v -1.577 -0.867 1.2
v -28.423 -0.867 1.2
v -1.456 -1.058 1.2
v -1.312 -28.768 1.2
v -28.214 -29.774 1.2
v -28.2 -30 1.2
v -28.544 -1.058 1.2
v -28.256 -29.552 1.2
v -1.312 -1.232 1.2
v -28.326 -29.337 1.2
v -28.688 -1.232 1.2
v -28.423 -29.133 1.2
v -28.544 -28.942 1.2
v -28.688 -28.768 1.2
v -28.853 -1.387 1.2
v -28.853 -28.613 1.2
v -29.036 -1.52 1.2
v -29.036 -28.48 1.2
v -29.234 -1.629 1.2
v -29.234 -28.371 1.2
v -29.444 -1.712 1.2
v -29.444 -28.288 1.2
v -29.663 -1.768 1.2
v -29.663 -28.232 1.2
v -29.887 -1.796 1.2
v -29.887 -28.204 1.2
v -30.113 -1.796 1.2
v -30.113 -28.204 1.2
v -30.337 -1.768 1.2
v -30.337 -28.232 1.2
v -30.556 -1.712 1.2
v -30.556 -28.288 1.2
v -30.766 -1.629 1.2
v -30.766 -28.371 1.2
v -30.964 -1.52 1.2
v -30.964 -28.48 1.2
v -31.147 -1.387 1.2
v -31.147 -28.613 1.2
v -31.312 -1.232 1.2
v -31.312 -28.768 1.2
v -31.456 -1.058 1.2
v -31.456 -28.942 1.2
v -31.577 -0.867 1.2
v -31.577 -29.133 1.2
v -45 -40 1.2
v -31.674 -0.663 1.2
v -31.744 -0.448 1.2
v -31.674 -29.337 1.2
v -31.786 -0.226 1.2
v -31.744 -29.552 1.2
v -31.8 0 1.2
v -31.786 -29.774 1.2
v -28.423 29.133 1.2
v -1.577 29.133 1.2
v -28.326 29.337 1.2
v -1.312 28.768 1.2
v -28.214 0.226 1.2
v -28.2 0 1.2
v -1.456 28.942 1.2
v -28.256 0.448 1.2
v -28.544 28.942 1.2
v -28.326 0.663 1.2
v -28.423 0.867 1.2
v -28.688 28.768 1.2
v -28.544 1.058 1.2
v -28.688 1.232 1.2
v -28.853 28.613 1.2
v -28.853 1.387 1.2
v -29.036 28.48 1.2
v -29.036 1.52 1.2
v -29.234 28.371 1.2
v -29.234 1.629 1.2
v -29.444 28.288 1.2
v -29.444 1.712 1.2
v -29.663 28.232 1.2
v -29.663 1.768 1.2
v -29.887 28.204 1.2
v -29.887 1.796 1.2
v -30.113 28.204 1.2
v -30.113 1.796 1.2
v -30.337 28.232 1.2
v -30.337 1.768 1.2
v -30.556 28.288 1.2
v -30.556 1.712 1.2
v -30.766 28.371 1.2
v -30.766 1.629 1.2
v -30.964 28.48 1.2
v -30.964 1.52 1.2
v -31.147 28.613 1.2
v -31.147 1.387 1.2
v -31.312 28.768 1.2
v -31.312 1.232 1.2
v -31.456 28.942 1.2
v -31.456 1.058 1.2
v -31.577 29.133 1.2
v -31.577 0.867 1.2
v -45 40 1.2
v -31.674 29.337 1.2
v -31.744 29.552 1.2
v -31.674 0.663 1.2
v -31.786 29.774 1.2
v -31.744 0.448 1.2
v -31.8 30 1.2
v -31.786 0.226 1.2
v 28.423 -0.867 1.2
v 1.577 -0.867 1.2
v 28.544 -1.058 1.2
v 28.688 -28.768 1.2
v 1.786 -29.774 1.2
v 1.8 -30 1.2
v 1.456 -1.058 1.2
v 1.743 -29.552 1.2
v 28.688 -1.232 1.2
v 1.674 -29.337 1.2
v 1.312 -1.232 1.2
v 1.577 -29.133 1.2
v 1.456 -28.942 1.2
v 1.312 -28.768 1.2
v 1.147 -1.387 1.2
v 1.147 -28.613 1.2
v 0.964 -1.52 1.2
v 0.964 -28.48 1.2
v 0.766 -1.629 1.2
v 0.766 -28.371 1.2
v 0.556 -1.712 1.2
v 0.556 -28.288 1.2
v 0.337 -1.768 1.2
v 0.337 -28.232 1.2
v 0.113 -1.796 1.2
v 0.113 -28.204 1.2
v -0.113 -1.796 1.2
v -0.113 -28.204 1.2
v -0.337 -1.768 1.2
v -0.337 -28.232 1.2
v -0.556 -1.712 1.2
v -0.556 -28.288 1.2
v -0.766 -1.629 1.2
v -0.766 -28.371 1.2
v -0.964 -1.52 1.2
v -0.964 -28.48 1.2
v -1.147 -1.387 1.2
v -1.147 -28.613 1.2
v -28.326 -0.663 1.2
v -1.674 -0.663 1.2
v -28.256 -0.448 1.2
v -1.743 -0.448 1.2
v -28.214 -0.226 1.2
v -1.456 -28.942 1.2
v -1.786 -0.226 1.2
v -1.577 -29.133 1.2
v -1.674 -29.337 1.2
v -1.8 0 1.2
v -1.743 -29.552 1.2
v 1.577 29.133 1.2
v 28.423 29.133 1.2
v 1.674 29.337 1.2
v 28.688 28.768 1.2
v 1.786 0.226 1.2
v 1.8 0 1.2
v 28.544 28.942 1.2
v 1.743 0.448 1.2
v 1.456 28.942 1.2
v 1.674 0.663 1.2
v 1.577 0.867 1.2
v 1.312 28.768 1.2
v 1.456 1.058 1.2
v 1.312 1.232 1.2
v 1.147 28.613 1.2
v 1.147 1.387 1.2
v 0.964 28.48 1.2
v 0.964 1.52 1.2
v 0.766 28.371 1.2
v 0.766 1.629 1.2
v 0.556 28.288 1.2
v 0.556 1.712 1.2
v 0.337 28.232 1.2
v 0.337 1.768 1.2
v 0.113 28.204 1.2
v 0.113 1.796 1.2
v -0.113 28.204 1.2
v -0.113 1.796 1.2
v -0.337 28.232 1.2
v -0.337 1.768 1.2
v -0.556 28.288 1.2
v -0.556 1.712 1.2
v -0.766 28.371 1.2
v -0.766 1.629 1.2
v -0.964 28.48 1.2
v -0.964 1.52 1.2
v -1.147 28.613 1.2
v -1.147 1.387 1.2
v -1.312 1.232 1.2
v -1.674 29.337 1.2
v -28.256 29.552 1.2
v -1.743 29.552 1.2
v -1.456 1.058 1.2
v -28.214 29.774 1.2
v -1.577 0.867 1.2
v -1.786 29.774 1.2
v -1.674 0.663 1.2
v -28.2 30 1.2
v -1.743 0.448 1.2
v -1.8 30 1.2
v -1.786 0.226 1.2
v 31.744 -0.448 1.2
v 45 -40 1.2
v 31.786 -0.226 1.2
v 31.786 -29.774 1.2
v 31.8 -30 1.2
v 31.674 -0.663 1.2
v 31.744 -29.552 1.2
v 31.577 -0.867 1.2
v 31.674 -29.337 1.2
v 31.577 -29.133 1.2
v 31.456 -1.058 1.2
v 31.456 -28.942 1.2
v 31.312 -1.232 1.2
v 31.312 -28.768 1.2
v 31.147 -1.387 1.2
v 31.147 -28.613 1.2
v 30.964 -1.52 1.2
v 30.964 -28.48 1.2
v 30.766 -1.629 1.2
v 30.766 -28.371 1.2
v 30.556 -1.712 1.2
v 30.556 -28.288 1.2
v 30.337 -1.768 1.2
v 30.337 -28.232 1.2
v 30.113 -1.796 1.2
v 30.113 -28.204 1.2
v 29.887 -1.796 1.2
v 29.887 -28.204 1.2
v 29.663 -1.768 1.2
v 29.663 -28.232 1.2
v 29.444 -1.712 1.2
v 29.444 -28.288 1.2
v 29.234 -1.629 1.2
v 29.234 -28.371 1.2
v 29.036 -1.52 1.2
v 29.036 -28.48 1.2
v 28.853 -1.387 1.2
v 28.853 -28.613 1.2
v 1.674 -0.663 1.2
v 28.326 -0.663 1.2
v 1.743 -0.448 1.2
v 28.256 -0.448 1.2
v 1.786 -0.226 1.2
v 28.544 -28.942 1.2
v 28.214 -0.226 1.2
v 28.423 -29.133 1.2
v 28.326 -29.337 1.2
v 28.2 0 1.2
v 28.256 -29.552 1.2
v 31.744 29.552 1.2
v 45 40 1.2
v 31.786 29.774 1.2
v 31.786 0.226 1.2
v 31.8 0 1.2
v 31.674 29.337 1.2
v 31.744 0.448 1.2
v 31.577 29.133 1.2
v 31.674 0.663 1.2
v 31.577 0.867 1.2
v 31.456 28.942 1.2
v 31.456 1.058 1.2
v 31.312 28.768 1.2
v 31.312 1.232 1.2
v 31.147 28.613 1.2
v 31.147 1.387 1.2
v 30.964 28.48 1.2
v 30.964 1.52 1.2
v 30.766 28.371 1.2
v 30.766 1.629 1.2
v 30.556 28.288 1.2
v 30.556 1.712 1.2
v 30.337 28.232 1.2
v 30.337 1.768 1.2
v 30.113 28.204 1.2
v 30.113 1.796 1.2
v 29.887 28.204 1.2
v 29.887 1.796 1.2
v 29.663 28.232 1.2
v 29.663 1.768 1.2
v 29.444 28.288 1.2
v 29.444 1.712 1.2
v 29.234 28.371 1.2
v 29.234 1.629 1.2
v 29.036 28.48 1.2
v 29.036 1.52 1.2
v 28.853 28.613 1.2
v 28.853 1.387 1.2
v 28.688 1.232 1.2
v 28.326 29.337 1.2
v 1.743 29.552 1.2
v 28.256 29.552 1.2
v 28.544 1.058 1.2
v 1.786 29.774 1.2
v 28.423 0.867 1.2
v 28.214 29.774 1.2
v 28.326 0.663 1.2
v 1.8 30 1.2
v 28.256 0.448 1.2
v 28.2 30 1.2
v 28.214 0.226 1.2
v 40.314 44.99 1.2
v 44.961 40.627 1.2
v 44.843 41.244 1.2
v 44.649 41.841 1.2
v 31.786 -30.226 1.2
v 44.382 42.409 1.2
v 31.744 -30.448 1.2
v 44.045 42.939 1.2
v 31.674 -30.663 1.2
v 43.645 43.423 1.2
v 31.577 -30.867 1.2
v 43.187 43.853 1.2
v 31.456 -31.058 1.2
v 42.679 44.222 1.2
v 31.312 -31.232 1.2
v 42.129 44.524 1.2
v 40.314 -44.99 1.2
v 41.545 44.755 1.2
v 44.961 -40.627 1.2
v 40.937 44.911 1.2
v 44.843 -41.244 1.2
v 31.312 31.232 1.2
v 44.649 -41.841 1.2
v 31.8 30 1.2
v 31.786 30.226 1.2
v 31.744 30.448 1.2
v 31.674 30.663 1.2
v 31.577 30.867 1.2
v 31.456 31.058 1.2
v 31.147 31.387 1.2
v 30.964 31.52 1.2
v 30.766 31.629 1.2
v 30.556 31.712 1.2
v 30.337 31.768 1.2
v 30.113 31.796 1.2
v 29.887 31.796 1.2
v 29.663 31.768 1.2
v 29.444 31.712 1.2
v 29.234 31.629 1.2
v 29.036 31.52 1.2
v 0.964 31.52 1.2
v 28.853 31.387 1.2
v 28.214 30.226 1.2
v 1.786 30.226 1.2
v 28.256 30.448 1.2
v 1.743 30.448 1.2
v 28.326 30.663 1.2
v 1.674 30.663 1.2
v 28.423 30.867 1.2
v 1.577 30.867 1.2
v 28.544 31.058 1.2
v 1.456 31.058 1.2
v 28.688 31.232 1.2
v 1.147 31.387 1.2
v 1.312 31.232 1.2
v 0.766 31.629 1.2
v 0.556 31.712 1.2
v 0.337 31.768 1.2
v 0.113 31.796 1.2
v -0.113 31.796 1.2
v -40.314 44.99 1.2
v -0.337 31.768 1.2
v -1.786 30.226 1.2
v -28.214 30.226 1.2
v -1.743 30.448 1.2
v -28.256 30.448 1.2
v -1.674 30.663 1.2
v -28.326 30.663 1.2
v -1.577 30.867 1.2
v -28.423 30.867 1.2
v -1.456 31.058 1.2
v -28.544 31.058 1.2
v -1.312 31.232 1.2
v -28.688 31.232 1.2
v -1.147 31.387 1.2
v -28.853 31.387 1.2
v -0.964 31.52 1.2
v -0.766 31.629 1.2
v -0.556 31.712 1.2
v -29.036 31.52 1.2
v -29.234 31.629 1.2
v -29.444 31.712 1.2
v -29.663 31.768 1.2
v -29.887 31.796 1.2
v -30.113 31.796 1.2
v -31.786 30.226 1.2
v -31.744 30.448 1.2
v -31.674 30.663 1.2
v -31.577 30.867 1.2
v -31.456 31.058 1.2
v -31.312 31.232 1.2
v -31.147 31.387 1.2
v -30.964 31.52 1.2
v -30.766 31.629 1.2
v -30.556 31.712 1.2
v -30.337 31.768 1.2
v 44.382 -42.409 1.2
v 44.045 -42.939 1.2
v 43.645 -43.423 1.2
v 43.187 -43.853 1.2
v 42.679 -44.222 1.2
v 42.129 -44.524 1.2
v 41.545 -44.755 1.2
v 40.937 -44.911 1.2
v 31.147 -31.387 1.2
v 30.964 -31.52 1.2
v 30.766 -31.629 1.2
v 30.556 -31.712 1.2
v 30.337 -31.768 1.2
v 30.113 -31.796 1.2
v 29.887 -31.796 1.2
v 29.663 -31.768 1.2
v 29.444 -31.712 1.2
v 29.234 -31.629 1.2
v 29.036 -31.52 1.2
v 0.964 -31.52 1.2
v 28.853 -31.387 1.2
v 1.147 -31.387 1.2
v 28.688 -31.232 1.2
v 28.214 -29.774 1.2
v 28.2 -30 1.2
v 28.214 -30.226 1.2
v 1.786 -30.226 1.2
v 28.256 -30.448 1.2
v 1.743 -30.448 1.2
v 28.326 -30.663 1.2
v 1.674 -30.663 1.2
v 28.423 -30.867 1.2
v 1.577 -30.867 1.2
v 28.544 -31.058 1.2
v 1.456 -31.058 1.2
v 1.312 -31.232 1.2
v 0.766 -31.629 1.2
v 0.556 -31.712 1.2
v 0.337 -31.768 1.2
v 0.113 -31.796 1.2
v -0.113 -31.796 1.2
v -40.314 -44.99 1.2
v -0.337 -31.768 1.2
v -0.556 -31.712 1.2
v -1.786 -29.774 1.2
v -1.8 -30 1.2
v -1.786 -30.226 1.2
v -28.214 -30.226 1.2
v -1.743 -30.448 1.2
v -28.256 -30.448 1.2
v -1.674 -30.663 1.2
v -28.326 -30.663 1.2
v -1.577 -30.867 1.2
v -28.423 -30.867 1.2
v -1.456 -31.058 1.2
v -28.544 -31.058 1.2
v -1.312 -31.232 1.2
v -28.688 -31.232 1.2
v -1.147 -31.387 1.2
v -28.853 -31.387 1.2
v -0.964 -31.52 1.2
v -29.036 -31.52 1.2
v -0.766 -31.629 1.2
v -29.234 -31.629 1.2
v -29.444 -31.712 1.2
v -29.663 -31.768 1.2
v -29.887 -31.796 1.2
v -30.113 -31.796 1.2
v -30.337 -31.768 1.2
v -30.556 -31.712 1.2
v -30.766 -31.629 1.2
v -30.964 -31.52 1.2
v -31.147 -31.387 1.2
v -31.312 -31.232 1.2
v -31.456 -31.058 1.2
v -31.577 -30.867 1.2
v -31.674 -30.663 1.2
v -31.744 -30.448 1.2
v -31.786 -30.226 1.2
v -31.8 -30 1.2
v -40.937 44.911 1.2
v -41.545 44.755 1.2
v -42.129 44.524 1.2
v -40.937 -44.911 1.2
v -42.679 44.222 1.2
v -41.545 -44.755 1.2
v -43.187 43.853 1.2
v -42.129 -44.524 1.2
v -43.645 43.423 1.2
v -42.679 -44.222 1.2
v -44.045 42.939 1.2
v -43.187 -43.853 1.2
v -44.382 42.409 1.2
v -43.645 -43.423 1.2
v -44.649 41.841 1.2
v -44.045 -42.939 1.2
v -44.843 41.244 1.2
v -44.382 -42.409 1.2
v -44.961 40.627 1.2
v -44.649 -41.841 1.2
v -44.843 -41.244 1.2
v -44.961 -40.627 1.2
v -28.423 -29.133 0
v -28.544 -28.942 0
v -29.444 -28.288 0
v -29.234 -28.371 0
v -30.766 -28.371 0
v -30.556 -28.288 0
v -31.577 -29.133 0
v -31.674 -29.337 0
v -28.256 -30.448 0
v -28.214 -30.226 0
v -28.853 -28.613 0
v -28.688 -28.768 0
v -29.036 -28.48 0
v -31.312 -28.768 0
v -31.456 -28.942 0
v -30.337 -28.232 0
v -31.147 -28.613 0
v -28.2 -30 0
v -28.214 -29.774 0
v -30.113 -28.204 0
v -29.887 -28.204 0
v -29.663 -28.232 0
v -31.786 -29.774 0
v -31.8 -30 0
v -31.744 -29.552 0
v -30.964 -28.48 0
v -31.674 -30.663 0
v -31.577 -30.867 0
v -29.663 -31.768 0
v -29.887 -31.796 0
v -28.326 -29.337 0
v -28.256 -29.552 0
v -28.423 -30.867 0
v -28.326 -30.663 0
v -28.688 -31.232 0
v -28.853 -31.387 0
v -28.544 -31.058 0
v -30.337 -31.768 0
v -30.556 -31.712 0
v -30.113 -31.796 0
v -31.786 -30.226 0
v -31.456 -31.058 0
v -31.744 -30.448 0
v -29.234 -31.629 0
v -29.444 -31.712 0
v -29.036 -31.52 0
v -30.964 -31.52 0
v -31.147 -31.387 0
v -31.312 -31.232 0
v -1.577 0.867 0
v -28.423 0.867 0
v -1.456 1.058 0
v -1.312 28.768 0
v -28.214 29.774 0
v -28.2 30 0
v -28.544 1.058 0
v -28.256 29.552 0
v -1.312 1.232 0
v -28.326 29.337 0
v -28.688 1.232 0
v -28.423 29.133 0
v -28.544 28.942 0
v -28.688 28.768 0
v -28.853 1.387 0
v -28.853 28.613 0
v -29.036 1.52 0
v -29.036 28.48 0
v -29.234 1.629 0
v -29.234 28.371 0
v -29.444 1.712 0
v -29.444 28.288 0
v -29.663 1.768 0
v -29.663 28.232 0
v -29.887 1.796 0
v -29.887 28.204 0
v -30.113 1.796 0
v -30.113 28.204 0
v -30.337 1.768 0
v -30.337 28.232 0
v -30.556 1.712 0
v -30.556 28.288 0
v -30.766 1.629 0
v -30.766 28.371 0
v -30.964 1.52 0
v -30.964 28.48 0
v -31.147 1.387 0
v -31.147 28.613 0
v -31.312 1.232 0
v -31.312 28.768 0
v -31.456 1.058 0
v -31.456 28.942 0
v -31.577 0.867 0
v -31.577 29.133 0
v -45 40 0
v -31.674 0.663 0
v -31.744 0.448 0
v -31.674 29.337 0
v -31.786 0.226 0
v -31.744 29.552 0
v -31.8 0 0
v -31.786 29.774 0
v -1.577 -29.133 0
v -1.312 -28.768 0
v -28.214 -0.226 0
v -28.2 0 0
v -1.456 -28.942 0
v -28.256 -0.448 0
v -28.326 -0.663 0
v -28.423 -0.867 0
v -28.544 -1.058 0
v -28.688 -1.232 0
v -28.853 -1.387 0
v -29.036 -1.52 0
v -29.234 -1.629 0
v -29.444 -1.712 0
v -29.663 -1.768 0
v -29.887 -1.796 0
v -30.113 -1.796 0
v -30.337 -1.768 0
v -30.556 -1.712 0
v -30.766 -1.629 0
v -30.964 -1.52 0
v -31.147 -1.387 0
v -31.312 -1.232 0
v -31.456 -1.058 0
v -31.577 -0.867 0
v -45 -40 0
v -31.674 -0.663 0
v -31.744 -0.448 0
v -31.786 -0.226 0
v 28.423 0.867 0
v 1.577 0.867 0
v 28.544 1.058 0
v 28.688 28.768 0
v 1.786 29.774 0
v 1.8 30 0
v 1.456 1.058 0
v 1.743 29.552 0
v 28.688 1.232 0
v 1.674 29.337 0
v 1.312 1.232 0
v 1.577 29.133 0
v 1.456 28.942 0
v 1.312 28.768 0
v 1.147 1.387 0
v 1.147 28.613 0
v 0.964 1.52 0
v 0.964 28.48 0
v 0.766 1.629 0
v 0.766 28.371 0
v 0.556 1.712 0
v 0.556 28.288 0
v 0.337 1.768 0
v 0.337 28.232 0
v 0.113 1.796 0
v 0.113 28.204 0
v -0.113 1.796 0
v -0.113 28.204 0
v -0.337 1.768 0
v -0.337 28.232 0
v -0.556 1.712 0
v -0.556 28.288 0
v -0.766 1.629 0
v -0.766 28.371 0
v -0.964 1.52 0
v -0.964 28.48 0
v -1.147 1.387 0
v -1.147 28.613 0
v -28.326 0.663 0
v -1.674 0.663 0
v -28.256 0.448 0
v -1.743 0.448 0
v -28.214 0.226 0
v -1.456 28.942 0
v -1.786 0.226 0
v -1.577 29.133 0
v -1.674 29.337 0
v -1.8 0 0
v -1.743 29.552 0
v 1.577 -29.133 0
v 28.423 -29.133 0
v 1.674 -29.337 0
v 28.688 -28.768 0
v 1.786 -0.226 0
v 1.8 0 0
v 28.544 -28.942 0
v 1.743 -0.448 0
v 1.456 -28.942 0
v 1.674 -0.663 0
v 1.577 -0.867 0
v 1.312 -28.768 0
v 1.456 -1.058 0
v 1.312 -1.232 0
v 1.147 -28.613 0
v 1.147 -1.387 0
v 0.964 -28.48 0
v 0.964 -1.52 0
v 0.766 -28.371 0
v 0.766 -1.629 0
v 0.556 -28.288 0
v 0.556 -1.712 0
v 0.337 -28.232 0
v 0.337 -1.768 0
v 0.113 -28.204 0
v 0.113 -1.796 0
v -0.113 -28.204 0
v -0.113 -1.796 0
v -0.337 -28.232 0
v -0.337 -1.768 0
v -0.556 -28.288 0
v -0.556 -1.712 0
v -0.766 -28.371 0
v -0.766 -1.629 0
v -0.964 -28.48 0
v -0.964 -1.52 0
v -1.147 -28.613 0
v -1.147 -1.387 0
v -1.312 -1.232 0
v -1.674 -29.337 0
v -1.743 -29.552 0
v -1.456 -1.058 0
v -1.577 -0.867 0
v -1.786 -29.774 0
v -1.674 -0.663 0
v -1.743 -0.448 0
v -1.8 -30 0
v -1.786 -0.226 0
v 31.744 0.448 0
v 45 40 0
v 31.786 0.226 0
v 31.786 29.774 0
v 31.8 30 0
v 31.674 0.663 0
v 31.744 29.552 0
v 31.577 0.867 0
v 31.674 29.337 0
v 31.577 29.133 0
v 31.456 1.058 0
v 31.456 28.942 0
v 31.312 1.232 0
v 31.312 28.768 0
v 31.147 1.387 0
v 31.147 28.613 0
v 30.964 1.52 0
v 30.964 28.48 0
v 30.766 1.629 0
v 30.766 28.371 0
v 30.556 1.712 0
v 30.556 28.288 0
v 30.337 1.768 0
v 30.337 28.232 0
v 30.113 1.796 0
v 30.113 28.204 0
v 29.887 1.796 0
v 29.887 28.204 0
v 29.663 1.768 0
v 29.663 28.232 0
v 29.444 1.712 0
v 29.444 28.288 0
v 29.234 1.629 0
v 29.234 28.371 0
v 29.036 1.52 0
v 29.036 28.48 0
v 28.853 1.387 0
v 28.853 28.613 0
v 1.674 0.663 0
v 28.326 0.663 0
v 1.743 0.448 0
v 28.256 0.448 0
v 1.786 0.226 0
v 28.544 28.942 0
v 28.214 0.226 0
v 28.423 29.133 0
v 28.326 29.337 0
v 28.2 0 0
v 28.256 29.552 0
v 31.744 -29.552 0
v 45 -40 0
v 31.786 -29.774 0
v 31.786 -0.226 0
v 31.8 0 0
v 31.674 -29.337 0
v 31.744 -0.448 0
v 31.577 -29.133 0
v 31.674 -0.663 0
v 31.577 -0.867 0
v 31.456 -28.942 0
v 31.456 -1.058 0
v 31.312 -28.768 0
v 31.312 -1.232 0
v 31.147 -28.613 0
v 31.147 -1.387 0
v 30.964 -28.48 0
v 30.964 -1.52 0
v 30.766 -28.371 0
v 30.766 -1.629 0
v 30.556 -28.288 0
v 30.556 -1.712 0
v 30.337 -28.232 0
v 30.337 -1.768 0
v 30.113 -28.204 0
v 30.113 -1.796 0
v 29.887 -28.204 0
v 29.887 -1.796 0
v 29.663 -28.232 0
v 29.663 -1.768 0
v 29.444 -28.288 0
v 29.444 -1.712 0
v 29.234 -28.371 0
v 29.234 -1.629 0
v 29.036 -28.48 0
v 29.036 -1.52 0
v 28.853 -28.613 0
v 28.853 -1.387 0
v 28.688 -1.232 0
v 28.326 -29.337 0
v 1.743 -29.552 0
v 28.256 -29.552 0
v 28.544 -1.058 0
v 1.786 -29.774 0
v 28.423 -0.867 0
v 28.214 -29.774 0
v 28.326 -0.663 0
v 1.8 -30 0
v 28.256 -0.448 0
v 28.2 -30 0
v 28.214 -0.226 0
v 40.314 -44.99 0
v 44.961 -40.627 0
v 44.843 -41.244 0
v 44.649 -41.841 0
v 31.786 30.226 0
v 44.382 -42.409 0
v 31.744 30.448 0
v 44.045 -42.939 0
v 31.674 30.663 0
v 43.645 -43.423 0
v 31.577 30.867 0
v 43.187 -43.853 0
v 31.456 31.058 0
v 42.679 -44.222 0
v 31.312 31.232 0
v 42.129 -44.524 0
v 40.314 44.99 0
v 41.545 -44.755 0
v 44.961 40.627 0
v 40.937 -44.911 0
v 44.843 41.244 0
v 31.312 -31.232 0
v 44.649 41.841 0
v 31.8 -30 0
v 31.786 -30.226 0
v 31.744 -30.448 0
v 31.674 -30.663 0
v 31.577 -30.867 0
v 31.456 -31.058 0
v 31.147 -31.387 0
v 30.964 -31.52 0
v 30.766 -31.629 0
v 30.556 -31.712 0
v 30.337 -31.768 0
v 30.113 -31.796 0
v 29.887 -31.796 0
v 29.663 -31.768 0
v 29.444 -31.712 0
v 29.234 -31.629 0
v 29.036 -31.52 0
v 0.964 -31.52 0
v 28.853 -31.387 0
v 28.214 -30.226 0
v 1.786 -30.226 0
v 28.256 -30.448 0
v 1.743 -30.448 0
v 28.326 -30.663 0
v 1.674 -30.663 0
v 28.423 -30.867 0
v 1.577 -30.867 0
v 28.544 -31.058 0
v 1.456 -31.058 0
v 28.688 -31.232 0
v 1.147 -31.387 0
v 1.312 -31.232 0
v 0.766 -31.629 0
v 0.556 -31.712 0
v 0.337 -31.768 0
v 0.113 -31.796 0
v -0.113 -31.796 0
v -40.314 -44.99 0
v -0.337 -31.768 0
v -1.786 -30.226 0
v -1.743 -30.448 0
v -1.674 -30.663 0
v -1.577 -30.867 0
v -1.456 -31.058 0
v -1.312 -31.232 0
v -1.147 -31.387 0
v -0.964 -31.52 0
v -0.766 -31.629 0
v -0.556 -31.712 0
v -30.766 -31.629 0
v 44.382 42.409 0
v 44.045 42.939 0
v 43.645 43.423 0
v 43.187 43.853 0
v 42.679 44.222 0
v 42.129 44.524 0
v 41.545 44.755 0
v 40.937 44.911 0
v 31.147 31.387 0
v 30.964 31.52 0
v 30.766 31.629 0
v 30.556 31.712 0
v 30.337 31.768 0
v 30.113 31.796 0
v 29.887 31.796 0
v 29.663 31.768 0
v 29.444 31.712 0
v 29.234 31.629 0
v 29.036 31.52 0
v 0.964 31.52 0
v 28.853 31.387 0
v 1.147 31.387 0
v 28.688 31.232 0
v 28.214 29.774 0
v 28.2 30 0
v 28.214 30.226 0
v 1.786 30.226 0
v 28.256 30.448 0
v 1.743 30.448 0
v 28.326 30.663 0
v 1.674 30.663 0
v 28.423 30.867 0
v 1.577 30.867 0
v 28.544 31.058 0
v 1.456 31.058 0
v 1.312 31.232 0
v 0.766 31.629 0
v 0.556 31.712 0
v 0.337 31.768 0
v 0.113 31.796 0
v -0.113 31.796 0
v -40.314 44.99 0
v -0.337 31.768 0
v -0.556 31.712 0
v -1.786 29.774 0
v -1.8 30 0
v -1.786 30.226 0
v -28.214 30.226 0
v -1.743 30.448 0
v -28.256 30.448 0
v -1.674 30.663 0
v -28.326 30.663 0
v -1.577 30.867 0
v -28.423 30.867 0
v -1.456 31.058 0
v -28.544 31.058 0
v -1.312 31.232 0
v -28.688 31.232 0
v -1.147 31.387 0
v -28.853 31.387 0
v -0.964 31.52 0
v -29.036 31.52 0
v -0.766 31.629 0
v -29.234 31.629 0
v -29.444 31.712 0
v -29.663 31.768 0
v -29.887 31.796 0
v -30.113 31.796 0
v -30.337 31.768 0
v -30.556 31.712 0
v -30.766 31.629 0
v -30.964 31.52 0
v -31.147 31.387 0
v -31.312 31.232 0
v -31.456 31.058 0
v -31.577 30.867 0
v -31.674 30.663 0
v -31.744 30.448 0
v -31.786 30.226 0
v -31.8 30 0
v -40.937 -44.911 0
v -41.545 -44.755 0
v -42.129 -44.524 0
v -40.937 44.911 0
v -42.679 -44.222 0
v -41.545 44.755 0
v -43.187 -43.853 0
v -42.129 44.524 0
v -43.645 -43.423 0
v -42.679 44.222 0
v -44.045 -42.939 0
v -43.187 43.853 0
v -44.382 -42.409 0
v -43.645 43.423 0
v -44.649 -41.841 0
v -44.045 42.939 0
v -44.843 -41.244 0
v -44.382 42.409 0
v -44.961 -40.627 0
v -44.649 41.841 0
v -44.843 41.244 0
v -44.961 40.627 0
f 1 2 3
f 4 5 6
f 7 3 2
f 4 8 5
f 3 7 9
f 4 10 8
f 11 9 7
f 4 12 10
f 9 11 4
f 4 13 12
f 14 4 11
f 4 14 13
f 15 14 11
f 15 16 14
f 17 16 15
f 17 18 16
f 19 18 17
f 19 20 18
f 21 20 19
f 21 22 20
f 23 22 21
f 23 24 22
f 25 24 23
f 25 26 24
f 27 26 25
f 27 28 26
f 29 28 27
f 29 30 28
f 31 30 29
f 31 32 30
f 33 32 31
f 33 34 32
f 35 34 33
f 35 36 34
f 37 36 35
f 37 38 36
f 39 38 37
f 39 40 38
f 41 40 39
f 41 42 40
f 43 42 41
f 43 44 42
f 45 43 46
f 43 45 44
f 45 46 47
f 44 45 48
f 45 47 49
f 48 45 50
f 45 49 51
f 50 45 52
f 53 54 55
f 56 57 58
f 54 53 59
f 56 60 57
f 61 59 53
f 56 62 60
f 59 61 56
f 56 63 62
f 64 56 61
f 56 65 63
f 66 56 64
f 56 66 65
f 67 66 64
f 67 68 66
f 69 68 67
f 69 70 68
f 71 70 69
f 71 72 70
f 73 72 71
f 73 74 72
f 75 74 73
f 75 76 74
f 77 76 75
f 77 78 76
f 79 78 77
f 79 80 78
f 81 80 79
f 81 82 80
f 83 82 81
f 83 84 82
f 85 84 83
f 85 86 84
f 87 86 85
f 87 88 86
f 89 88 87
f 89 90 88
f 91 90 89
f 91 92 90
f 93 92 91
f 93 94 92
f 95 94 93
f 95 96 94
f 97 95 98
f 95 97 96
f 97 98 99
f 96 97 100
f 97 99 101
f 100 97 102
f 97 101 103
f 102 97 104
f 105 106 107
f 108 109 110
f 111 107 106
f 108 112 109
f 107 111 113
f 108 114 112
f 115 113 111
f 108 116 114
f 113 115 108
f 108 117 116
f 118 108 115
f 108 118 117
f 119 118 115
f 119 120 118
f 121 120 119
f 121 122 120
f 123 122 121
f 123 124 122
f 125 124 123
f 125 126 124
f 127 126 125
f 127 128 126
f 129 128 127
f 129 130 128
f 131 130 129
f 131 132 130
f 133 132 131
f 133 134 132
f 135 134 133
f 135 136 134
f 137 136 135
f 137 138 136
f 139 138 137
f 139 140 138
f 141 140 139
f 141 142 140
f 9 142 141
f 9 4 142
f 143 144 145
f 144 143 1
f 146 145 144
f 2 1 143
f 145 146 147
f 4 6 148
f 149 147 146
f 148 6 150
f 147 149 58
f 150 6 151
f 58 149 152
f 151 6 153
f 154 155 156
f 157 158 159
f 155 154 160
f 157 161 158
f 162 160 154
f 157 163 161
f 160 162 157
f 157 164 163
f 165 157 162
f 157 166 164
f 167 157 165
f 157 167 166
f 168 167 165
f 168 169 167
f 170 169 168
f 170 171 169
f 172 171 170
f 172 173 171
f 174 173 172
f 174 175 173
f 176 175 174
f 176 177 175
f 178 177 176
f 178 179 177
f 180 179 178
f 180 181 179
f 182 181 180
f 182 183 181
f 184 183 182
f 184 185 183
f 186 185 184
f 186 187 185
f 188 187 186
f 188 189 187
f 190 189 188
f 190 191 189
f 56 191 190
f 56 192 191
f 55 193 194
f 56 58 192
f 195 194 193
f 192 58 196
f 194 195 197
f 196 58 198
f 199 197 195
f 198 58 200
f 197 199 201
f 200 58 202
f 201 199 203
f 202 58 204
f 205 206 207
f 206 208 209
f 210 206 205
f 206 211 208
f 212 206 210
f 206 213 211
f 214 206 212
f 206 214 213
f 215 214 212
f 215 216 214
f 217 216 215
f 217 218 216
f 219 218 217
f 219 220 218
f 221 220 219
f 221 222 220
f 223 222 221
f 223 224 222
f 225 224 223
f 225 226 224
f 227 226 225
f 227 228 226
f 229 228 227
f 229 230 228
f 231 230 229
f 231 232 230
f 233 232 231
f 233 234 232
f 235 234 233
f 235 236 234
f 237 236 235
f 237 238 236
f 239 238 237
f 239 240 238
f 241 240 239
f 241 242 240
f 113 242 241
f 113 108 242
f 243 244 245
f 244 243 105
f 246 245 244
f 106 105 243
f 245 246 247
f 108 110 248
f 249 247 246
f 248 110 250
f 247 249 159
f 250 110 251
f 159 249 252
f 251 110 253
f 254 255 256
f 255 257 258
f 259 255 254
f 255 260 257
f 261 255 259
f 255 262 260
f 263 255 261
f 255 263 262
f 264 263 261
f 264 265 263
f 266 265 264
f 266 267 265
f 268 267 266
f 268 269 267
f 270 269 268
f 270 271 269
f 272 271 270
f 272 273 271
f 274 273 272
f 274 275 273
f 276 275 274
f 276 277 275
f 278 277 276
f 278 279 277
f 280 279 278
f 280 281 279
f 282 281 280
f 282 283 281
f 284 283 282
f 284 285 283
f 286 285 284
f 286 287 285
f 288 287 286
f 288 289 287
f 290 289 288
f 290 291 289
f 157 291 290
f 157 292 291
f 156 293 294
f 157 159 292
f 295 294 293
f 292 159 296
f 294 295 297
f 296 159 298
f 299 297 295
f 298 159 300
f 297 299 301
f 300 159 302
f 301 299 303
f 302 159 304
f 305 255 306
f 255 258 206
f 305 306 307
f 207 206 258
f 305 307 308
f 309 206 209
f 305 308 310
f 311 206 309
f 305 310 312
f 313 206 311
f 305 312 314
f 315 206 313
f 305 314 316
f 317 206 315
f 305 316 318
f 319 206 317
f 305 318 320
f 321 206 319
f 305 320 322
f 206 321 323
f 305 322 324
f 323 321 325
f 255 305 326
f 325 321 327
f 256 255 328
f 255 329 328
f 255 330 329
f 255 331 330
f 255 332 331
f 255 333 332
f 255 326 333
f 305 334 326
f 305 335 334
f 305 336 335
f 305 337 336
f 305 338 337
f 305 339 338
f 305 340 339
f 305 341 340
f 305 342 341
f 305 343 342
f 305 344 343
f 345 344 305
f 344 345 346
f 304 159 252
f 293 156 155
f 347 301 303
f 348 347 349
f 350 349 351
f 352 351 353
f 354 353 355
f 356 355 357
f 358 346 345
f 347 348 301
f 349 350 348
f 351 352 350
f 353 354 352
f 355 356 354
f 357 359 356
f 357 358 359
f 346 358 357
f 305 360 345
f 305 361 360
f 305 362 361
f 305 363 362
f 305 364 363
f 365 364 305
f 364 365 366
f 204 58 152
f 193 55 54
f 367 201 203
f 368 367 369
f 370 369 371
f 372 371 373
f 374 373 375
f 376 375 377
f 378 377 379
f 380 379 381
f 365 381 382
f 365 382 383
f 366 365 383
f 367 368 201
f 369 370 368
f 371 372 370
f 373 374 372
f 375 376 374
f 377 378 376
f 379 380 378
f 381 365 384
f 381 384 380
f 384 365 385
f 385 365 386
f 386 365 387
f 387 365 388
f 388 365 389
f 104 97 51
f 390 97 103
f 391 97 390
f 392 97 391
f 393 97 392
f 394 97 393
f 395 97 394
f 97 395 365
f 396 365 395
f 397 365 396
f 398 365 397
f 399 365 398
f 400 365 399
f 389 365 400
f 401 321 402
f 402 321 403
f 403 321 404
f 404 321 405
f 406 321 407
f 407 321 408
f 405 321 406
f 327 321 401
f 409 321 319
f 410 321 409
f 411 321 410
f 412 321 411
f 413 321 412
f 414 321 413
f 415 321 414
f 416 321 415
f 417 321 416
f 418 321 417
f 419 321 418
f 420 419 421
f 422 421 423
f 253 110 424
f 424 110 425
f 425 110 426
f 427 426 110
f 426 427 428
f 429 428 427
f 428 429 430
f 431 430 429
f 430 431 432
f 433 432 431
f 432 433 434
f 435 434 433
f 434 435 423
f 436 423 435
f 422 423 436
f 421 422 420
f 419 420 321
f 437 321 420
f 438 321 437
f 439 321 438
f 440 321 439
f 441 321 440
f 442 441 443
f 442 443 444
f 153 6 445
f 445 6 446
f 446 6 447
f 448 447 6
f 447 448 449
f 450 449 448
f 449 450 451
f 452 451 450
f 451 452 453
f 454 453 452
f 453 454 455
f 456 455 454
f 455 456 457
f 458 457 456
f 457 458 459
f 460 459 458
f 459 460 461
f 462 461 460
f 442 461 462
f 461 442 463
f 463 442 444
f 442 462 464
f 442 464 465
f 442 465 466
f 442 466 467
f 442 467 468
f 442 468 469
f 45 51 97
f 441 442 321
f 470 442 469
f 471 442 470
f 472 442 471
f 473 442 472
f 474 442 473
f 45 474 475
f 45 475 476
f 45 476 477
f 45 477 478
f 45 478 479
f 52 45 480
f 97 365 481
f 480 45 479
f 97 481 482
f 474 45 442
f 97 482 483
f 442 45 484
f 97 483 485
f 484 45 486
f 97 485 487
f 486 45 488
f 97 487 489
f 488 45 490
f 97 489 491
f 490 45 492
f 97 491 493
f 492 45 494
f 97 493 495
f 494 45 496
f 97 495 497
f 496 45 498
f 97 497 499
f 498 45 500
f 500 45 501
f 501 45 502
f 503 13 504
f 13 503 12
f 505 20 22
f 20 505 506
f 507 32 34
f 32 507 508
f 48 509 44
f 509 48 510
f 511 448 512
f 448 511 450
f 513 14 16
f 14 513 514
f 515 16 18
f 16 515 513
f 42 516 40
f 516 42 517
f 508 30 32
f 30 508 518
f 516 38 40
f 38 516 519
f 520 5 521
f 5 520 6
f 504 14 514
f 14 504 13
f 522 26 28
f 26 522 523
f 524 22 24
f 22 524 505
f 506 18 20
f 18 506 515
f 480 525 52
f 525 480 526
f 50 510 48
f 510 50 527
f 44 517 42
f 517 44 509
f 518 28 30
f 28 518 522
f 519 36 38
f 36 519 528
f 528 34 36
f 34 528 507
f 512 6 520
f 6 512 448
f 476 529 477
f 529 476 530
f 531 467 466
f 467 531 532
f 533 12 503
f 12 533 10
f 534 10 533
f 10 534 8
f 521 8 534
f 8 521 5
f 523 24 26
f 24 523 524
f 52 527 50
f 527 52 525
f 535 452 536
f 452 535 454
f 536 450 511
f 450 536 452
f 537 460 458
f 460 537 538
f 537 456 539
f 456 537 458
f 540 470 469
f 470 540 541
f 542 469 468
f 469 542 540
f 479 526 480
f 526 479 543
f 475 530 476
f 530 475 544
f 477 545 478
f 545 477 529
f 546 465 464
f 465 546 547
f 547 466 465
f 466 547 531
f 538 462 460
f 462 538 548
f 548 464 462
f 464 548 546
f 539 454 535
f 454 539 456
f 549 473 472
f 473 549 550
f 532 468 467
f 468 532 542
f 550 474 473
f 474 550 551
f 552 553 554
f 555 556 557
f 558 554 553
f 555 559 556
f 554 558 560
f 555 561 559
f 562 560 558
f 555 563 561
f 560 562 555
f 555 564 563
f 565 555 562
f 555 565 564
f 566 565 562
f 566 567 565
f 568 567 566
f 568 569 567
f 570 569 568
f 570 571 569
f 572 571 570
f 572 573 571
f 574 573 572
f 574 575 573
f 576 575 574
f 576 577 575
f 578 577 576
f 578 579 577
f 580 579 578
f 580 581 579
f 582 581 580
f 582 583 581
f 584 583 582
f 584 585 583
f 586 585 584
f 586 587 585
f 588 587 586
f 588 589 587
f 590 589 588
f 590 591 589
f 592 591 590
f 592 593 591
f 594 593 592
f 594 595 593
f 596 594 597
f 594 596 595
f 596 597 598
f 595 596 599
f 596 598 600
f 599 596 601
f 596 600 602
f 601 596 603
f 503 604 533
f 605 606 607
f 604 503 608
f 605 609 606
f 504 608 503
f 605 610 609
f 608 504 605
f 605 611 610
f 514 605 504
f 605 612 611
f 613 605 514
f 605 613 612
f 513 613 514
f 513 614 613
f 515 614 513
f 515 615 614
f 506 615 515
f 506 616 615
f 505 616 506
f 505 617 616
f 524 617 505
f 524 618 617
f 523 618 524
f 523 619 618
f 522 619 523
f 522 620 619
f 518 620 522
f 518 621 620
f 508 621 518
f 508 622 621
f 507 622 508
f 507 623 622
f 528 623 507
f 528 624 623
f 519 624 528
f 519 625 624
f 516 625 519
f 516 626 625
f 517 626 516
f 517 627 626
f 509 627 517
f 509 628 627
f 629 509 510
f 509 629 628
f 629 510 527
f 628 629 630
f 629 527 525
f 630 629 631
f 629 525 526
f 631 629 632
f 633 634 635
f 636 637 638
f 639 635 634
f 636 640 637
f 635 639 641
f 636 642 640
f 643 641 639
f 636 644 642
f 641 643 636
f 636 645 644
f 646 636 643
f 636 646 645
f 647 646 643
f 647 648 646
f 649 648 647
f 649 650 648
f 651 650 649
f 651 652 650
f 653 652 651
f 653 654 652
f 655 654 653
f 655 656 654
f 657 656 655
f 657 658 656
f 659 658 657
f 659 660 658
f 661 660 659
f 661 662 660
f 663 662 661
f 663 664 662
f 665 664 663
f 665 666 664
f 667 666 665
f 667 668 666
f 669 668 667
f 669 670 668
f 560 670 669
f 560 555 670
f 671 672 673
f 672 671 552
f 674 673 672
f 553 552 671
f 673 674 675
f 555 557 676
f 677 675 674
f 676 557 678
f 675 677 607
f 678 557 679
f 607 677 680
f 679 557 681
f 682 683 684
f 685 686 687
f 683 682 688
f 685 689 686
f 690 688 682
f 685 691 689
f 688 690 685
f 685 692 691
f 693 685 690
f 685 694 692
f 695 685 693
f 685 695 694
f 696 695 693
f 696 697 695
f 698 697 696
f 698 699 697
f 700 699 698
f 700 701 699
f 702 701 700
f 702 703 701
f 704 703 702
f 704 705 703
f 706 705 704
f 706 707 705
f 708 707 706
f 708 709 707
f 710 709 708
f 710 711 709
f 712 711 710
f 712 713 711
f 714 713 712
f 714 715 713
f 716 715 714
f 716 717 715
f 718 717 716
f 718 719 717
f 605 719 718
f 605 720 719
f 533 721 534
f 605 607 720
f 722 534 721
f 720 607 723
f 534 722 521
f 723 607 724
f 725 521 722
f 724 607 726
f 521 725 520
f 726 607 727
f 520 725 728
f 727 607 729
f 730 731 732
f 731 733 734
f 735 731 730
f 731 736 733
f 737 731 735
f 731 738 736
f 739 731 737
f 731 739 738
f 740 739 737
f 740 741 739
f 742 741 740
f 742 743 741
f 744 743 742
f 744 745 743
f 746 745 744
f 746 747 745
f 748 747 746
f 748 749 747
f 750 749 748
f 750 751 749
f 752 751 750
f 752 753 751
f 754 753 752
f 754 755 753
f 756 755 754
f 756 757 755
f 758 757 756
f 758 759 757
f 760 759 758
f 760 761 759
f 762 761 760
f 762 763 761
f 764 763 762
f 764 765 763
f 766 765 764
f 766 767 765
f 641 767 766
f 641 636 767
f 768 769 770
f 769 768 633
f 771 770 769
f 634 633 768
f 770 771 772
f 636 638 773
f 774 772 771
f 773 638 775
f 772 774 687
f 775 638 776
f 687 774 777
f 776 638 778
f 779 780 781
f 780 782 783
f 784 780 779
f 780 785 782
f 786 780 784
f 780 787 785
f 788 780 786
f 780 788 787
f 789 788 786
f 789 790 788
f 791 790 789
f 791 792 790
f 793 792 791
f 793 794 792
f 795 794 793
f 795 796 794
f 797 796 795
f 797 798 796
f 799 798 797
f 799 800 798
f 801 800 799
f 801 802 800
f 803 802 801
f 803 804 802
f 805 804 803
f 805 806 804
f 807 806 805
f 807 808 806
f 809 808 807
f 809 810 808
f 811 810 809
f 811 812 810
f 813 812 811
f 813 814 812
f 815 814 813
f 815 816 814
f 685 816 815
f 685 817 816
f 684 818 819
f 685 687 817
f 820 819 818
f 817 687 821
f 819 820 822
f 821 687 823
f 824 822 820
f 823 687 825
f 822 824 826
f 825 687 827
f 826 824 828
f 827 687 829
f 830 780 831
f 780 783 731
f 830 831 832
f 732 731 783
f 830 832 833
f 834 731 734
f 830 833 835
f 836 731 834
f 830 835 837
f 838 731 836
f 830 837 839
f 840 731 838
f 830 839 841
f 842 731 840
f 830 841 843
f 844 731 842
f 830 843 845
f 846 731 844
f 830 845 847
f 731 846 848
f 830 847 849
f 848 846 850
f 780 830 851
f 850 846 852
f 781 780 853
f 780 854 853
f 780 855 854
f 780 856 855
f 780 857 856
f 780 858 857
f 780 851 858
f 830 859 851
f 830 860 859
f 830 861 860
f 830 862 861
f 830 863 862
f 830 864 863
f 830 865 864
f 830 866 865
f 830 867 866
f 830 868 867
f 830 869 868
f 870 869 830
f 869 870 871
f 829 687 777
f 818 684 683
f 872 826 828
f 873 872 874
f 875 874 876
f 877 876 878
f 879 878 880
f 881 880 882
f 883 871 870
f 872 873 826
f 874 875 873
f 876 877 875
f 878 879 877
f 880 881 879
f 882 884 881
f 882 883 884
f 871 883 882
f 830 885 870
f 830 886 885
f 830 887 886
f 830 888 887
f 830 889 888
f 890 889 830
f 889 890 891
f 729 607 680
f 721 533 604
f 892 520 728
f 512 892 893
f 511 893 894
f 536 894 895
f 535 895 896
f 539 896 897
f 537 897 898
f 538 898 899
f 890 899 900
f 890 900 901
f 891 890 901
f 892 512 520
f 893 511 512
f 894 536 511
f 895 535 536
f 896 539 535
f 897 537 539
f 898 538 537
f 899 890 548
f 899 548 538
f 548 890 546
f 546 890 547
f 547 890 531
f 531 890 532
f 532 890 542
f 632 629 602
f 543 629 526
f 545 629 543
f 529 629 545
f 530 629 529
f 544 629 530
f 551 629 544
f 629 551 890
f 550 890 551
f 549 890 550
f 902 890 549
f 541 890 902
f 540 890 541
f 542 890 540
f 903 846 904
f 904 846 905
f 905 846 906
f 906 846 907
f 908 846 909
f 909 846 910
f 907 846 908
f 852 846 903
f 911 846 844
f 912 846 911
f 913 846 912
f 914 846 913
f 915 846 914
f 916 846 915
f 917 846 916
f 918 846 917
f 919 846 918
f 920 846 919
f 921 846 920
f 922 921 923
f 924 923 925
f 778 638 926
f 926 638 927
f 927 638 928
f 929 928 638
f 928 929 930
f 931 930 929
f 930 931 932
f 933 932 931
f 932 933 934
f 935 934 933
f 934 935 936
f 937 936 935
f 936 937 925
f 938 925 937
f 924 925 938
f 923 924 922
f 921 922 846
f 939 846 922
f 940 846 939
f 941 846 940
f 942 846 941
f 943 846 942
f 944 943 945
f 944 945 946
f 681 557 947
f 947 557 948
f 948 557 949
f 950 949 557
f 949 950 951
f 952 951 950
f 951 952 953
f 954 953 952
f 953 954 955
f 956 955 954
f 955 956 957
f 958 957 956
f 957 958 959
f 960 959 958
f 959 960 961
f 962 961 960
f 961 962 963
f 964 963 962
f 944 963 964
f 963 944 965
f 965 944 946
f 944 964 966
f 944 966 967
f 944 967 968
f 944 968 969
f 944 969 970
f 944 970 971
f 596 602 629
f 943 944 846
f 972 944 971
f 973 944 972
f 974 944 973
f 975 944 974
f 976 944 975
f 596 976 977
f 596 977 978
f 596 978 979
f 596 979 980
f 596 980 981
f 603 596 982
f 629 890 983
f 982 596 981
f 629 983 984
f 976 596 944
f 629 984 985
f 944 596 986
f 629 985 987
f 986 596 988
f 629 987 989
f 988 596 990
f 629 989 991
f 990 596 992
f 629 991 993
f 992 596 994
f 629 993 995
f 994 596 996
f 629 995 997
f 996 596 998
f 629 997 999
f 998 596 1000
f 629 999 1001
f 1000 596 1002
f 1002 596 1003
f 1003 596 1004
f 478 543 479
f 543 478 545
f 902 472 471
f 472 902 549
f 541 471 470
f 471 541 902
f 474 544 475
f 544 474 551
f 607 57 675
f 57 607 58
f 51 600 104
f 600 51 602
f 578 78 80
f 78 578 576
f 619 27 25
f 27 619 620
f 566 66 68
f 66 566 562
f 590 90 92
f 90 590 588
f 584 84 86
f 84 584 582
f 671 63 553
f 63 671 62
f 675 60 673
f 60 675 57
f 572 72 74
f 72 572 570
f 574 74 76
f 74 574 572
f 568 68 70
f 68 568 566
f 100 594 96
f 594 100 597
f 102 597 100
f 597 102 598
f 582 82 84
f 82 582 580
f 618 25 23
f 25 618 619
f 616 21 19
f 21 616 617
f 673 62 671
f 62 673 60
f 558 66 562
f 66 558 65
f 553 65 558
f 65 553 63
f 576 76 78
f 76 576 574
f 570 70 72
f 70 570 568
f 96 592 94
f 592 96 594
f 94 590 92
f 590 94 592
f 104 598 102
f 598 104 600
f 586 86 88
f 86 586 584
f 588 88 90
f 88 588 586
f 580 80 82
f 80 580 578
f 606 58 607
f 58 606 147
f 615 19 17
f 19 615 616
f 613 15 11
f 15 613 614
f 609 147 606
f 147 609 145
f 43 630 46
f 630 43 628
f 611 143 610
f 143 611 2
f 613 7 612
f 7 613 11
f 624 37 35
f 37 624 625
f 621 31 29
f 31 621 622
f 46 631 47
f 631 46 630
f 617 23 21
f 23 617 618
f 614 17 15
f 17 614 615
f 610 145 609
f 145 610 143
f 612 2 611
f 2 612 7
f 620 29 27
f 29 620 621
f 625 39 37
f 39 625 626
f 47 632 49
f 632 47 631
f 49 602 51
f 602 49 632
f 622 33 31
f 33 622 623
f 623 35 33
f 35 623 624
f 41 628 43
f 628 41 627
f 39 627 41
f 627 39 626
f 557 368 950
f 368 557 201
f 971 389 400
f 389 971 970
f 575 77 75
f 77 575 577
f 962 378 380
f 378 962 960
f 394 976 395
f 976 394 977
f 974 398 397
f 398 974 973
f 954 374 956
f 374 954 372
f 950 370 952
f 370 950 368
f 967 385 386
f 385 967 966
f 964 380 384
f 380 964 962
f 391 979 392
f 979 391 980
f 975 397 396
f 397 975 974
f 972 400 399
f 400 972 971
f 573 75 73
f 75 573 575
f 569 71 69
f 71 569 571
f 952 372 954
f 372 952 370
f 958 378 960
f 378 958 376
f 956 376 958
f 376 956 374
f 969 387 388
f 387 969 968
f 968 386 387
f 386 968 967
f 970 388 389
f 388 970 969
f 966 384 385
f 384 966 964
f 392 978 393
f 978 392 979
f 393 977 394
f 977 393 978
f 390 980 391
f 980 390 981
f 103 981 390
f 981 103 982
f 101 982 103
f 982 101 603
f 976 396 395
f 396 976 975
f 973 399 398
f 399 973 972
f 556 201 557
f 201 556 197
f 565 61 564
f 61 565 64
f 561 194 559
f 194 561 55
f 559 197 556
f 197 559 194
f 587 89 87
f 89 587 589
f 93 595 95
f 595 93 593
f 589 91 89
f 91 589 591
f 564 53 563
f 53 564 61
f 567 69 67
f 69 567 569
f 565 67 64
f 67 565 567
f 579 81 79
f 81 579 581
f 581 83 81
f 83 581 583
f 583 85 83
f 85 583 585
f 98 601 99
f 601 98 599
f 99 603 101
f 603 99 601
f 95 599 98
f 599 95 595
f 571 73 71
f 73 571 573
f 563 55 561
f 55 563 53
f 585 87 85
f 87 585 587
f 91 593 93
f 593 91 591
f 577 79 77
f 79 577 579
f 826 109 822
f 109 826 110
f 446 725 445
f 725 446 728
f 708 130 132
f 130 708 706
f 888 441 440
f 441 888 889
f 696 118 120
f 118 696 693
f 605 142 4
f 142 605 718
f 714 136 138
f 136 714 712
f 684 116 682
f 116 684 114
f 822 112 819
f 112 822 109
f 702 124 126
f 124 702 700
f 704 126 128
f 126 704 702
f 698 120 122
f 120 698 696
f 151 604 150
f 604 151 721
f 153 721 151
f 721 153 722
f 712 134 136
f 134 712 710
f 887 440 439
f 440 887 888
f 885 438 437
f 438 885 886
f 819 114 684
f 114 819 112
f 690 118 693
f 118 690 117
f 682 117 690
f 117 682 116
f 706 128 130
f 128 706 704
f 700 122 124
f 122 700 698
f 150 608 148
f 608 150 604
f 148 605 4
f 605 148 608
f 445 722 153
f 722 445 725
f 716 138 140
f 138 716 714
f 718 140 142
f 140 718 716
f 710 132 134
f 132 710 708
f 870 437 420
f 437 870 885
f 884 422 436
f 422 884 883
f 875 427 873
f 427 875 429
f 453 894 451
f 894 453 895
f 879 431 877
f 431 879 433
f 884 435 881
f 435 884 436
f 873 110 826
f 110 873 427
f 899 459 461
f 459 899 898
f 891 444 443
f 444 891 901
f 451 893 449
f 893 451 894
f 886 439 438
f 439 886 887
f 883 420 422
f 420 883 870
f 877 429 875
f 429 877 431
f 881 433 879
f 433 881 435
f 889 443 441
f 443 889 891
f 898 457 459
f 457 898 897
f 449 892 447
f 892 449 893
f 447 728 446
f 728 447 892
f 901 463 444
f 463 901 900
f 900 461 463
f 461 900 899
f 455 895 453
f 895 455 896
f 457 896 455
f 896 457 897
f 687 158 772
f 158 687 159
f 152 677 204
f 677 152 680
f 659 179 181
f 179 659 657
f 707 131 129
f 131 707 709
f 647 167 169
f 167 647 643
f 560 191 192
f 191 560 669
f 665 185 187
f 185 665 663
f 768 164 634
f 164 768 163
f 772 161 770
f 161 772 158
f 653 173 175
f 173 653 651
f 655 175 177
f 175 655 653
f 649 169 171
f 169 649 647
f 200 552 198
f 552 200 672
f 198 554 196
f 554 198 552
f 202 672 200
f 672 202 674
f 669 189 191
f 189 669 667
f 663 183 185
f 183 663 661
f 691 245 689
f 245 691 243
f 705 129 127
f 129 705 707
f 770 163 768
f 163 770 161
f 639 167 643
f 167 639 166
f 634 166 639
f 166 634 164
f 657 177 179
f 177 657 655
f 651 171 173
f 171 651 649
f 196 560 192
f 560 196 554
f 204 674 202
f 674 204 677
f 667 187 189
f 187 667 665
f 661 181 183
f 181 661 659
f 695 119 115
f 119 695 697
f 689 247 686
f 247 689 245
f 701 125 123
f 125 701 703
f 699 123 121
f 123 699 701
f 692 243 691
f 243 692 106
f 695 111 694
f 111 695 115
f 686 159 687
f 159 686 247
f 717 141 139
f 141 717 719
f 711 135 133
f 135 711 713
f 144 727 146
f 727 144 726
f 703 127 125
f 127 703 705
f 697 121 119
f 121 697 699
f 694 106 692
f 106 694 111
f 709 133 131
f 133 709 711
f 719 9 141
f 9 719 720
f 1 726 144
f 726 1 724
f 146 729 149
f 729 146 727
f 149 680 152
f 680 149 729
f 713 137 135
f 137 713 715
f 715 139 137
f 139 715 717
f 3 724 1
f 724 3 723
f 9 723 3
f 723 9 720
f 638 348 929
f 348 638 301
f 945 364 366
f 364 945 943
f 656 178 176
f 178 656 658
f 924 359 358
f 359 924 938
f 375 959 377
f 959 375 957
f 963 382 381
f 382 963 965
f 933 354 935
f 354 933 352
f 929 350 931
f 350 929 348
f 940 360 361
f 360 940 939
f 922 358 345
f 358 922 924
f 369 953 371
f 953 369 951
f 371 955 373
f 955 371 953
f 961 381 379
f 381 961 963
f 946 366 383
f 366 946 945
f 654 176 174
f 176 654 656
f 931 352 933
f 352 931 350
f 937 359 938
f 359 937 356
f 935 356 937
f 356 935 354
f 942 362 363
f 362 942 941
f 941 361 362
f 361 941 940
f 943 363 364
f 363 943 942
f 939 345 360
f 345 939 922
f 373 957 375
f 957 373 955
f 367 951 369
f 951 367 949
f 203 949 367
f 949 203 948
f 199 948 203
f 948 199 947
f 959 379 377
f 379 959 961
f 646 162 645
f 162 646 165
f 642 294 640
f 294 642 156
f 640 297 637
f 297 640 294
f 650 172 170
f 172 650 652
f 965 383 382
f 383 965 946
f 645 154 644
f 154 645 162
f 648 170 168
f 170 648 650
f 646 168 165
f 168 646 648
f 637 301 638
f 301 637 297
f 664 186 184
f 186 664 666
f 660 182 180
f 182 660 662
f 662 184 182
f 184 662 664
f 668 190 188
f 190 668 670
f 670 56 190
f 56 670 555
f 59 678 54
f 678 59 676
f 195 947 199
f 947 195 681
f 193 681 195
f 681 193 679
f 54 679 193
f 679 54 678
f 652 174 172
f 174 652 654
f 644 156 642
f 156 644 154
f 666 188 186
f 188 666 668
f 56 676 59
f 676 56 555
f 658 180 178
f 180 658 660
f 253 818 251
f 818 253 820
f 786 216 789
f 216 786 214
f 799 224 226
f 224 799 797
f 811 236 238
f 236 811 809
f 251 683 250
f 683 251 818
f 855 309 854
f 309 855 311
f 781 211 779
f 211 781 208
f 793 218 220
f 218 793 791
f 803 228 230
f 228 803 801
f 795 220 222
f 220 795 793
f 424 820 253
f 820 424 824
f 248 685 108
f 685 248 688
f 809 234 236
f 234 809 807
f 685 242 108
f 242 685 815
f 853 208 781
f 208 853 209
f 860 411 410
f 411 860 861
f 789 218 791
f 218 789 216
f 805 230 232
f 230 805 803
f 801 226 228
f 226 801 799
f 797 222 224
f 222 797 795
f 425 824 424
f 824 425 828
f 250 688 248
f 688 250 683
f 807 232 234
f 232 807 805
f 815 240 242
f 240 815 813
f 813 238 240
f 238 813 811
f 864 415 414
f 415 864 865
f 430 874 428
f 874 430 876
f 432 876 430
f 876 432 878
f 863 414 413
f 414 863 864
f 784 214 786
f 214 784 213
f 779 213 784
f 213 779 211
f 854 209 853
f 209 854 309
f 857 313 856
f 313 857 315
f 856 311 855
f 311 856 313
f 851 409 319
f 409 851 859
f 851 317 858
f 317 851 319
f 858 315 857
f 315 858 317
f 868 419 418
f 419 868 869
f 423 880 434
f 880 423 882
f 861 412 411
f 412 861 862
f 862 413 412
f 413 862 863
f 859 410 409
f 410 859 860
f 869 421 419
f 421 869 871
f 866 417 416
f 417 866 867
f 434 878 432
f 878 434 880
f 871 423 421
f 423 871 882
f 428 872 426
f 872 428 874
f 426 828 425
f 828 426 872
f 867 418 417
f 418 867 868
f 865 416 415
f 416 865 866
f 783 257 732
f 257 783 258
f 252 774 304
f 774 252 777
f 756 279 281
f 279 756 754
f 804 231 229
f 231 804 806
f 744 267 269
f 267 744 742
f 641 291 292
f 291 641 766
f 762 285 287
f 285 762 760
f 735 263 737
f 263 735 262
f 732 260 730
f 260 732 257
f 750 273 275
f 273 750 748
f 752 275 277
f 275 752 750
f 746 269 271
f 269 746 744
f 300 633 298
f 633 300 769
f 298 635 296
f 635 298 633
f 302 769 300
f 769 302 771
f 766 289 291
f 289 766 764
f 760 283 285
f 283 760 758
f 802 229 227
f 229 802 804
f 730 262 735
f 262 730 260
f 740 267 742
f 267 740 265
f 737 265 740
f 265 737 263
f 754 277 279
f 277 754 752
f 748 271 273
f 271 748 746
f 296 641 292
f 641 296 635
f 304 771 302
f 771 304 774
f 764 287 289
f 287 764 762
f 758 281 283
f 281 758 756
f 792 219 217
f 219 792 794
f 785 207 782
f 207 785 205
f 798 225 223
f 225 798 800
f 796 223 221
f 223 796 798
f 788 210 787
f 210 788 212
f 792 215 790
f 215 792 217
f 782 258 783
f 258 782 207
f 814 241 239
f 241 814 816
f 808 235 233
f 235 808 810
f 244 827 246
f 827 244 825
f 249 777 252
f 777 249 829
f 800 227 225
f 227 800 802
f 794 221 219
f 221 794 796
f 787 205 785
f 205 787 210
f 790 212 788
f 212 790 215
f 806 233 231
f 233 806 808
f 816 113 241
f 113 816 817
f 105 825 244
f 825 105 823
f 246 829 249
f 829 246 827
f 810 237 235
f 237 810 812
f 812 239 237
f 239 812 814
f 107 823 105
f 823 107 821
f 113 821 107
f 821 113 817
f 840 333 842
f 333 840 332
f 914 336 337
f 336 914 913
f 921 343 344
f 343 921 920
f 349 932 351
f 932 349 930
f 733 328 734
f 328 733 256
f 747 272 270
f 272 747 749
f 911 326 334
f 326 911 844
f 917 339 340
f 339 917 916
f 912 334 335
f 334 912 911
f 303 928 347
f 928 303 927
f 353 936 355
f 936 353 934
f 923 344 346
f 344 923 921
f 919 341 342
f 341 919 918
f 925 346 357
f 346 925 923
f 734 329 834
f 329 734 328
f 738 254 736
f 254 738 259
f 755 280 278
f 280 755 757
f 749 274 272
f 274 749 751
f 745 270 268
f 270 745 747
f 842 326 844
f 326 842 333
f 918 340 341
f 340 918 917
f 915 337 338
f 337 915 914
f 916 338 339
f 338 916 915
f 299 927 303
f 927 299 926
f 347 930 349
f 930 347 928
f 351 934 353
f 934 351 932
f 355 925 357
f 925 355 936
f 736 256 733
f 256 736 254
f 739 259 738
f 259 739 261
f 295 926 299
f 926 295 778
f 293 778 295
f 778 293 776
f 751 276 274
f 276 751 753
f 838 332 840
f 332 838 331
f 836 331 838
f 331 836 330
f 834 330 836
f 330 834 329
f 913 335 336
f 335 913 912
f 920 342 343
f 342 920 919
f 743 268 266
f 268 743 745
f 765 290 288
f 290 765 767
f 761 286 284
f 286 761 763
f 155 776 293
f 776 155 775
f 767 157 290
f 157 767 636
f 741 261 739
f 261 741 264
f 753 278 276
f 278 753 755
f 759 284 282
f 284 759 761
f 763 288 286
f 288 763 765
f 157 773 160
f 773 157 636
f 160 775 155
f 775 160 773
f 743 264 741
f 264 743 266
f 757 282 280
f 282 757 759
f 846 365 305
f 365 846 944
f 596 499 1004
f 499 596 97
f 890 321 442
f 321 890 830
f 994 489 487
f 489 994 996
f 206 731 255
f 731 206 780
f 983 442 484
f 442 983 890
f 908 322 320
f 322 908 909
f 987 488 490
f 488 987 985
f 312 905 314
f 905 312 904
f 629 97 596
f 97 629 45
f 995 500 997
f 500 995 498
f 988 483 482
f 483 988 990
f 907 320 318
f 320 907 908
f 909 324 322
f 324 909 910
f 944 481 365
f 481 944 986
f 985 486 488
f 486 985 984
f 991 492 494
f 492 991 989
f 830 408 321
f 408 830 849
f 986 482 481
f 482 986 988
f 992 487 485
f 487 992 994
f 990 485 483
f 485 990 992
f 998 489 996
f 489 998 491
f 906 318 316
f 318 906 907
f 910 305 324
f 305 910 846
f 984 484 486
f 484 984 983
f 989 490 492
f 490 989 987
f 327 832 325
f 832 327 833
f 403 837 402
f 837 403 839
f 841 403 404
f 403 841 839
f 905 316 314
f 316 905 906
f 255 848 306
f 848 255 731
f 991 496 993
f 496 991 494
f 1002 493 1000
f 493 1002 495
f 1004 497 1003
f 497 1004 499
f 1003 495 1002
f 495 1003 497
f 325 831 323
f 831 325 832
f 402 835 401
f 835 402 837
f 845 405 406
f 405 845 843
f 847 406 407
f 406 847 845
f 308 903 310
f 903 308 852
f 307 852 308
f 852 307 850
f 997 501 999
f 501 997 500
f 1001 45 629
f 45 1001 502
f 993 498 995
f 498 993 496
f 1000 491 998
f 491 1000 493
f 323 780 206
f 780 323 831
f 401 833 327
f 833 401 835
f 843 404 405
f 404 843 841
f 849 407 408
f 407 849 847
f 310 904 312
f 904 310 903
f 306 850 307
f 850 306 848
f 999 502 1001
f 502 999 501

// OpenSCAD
$fn = 50;


difference() {
	union() {
		hull() {
			translate(v = [-40.0000000000, 40.0000000000, 0]) {
				cylinder(h = 24, r = 5);
			}
			translate(v = [40.0000000000, 40.0000000000, 0]) {
				cylinder(h = 24, r = 5);
			}
			translate(v = [-40.0000000000, -40.0000000000, 0]) {
				cylinder(h = 24, r = 5);
			}
			translate(v = [40.0000000000, -40.0000000000, 0]) {
				cylinder(h = 24, r = 5);
			}
		}
	}
	union() {
		translate(v = [0, 0, 1.2000000000]) {
			hull() {
				translate(v = [-40.0000000000, 40.0000000000, 0]) {
					cylinder(h = 22.8000000000, r = 3.8000000000);
				}
				translate(v = [40.0000000000, 40.0000000000, 0]) {
					cylinder(h = 22.8000000000, r = 3.8000000000);
				}
				translate(v = [-40.0000000000, -40.0000000000, 0]) {
					cylinder(h = 22.8000000000, r = 3.8000000000);
				}
				translate(v = [40.0000000000, -40.0000000000, 0]) {
					cylinder(h = 22.8000000000, r = 3.8000000000);
				}
			}
		}
		#translate(v = [-30.0000000000, -30.0000000000, 0]) {
			cylinder(h = 1.2000000000, r = 1.8000000000);
		}
		#translate(v = [-30.0000000000, 0.0000000000, 0]) {
			cylinder(h = 1.2000000000, r = 1.8000000000);
		}
		#translate(v = [-30.0000000000, 30.0000000000, 0]) {
			cylinder(h = 1.2000000000, r = 1.8000000000);
		}
		#translate(v = [0.0000000000, -30.0000000000, 0]) {
			cylinder(h = 1.2000000000, r = 1.8000000000);
		}
		#cylinder(h = 1.2000000000, r = 1.8000000000);
		#translate(v = [0.0000000000, 30.0000000000, 0]) {
			cylinder(h = 1.2000000000, r = 1.8000000000);
		}
		#translate(v = [30.0000000000, -30.0000000000, 0]) {
			cylinder(h = 1.2000000000, r = 1.8000000000);
		}
		#translate(v = [30.0000000000, 0.0000000000, 0]) {
			cylinder(h = 1.2000000000, r = 1.8000000000);
		}
		#translate(v = [30.0000000000, 30.0000000000, 0]) {
			cylinder(h = 1.2000000000, r = 1.8000000000);
		}
		translate(v = [-250.0000000000, -250.0000000000, 1.2000000000]) {
			cube(size = [500, 500, 500]);
		}
		translate(v = [-250.0000000000, -250.0000000000, 1.2000000000]) {
			cube(size = [500, 500, 500]);
		}
		translate(v = [-250.0000000000, -250.0000000000, 1.2000000000]) {
			cube(size = [500, 500, 500]);
		}
	}
}
